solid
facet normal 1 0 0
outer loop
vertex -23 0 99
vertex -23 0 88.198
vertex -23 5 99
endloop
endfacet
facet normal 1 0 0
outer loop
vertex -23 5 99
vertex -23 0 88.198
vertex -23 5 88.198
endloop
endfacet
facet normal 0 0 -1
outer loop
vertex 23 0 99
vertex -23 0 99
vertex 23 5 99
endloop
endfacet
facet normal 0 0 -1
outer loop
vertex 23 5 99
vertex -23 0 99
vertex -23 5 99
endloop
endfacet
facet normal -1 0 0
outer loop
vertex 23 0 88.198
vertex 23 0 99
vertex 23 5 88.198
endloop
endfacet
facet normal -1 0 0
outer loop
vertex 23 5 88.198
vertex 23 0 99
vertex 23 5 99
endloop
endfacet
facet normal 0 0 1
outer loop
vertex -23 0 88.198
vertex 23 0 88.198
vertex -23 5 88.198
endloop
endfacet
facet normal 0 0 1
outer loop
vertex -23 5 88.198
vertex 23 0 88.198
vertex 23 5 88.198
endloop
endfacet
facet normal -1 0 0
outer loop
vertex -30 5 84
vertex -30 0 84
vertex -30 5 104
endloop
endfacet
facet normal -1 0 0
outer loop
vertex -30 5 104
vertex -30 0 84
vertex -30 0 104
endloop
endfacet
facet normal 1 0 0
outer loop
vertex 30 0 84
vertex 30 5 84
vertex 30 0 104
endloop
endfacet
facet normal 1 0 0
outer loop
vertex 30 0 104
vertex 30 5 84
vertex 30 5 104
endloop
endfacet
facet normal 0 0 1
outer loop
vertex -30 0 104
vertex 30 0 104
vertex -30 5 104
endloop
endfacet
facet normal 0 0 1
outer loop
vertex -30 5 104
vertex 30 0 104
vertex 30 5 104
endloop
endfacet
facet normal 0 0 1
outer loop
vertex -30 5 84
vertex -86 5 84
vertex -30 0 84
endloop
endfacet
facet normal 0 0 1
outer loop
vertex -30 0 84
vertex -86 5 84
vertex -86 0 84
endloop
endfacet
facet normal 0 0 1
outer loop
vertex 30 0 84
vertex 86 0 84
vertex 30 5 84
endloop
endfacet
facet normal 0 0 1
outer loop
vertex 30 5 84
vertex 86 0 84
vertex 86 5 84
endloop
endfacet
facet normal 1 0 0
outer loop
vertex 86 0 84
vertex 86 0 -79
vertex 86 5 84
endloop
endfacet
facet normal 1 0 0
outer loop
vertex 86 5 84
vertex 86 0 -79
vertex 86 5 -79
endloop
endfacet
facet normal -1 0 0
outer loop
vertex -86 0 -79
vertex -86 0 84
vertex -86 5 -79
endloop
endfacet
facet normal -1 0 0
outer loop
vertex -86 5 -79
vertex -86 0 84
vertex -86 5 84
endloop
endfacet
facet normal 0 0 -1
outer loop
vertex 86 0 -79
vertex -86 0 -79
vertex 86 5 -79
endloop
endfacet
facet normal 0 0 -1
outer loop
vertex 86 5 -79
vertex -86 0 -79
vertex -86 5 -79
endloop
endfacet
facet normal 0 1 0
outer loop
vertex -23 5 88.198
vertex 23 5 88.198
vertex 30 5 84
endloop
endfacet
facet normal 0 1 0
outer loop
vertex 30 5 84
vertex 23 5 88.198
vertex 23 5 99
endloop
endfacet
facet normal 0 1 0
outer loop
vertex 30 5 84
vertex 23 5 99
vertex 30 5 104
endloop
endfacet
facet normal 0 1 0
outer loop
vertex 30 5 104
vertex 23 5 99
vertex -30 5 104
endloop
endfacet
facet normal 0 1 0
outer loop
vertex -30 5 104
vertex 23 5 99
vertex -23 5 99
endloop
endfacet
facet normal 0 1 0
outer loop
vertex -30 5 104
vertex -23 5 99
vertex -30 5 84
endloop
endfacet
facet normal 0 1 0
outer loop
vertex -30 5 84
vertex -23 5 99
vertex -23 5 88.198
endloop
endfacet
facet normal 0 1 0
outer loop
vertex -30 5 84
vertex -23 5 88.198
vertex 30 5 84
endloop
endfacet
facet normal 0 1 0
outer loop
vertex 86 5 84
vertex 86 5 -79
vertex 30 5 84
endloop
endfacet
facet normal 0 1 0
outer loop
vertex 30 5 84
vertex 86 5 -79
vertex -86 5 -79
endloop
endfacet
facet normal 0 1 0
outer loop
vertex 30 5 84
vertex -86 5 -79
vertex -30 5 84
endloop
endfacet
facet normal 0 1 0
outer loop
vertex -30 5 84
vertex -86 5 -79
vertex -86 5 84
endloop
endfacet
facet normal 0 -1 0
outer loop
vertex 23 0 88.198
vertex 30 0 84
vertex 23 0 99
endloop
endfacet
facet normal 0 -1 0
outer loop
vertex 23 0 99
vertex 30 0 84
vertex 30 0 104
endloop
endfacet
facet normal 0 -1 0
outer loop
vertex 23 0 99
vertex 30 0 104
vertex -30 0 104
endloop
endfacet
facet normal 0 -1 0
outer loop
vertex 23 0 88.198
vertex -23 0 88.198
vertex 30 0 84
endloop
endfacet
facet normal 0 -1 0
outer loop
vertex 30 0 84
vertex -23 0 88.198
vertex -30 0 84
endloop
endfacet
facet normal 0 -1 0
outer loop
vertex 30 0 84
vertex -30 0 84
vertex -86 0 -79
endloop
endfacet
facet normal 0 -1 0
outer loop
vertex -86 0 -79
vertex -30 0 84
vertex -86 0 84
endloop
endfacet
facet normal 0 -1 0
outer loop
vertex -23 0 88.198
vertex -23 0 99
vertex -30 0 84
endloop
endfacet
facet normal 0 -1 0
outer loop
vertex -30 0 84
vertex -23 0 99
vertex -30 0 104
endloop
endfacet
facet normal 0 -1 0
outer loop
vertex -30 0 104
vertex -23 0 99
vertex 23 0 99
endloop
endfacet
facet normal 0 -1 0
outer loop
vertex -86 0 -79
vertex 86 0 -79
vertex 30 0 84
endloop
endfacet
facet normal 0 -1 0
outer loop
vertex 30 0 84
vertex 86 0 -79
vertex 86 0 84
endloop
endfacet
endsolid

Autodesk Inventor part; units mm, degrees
ref_plane "YZ Plane" through (0, 0, 0) normal (1, 0, 0) x (0, 1, 0)
ref_plane "XZ Plane" through (0, 0, 0) normal (0, 1, 0) x (-1, 0, 0)
ref_plane "XY Plane" through (0, 0, 0) normal (0, 0, 1) x (1, 0, 0)
sketch "Sketch1" plane through (0, 0, 0) normal (0, 1, 0) x (-1, 0, 0)
  line L0 (120.4, 0) -> (-120.4, 0) projected
  line L1 (0, -117.6) -> (0, 117.6) projected
  line L2 (-86, 84) -> (86, 84)
  line L3 (86, 84) -> (86, -84)
  line L4 (86, -84) -> (-86, -84)
  line L5 (-86, -84) -> (-86, 84)
  line L6 (-86, 84) -> (86, -84) construction
  line L7 (86, 84) -> (-86, -84) construction
  point P0 (0, 0)
  dimension "d0" = 172
  dimension "d1" = 168
extrude "Extrusion1" add sketch "Sketch1" along normal blind 9
sketch "Sketch2" plane through (-86, 0, 84) normal (0, 0, 1) x (1, 0, 0)
  line L0 (172, 9) -> (0, 9) projected
  line L1 (172, 0) -> (0, 0) projected
  line L2 (56, 9) -> (116, 9)
  line L3 (116, 9) -> (116, 0)
  line L4 (116, 0) -> (56, 0)
  line L5 (56, 0) -> (56, 9)
  point P0 (86, 0)
  dimension "d4" = 60
  dimension "d5" = 30
extrude "Extrusion2" add sketch "Sketch2" along normal blind 20
sketch "Sketch3" plane through (0, 9, 0) normal (0, 1, 0) x (1, 0, 0)
  line L0 (-23, -88.1983) -> (23, -88.1983)
  line L1 (23, -88.1983) -> (23, -99)
  line L2 (23, -99) -> (-23, -99)
  line L3 (-23, -99) -> (-23, -88.1983)
  line L4 (30, -84) -> (30, -104) projected
  line L5 (30, -104) -> (-30, -104) projected
  line L6 (-30, -84) -> (-30, -104) projected
  line L7 (30, -84) -> (86, -84) projected
  point P0 (0, 0)
  dimension "d8" = 7
  dimension "d9" = 5
  dimension "d10" = 7
  dimension "d11" = 4.1983
extrude "Extrusion3" cut sketch "Sketch3" against normal blind 20
move faces "Move1" translate (0, -4, 0) faces at (-10, 9, -28)
move faces "Move2" translate (0, 0, 5) faces at (28.6667, 1.6667, -84)
properties part number "pokrywa"
